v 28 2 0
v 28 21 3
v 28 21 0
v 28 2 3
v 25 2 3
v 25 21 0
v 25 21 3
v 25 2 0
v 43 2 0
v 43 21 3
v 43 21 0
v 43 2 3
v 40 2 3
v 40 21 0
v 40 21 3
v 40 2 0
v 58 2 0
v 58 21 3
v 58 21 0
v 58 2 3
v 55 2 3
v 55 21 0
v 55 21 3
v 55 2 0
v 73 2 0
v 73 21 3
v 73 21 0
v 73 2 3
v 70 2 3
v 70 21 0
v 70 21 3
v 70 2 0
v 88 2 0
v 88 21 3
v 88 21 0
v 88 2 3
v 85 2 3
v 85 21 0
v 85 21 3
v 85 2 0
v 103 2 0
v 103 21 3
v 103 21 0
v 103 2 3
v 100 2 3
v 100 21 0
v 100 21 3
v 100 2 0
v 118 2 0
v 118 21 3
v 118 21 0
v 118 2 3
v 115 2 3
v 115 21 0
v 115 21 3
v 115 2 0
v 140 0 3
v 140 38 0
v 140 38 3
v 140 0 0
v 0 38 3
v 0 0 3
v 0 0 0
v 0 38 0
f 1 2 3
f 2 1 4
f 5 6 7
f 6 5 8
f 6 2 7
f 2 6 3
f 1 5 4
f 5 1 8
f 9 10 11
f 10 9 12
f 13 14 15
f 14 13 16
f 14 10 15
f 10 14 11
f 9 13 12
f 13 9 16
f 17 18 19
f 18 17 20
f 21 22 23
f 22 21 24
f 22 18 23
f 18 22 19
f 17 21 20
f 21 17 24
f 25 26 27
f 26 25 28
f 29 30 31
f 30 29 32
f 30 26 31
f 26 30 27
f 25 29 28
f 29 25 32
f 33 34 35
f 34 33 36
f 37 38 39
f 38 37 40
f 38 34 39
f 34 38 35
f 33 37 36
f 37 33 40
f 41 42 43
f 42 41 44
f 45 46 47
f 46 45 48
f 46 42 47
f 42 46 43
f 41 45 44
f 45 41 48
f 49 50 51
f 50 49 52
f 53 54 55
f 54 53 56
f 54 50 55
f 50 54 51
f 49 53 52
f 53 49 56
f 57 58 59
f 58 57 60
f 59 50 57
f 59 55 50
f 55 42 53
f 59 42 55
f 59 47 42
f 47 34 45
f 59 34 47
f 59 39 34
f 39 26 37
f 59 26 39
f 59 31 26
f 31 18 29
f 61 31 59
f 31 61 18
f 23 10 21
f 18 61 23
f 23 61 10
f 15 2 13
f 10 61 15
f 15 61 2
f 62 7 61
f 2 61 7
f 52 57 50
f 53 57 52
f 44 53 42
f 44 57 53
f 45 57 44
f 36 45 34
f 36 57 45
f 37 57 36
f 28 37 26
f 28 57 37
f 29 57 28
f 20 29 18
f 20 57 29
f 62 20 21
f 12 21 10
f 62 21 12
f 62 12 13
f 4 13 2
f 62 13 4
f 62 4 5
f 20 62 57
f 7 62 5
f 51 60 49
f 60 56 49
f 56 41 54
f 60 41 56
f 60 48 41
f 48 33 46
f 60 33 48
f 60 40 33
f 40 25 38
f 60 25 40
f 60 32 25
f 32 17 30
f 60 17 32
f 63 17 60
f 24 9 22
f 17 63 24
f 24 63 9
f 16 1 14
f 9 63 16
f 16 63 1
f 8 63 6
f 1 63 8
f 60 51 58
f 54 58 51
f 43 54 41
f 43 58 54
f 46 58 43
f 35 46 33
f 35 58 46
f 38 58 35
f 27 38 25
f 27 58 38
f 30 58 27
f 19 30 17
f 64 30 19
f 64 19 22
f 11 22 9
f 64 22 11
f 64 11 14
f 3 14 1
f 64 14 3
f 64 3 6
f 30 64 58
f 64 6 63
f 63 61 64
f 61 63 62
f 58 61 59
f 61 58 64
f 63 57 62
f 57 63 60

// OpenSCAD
difference() {
    cube([140,38,3]);
    for( x = [25 : 15 : 115])
       translate([x,2,-1]) cube([3,19,5]);

}
